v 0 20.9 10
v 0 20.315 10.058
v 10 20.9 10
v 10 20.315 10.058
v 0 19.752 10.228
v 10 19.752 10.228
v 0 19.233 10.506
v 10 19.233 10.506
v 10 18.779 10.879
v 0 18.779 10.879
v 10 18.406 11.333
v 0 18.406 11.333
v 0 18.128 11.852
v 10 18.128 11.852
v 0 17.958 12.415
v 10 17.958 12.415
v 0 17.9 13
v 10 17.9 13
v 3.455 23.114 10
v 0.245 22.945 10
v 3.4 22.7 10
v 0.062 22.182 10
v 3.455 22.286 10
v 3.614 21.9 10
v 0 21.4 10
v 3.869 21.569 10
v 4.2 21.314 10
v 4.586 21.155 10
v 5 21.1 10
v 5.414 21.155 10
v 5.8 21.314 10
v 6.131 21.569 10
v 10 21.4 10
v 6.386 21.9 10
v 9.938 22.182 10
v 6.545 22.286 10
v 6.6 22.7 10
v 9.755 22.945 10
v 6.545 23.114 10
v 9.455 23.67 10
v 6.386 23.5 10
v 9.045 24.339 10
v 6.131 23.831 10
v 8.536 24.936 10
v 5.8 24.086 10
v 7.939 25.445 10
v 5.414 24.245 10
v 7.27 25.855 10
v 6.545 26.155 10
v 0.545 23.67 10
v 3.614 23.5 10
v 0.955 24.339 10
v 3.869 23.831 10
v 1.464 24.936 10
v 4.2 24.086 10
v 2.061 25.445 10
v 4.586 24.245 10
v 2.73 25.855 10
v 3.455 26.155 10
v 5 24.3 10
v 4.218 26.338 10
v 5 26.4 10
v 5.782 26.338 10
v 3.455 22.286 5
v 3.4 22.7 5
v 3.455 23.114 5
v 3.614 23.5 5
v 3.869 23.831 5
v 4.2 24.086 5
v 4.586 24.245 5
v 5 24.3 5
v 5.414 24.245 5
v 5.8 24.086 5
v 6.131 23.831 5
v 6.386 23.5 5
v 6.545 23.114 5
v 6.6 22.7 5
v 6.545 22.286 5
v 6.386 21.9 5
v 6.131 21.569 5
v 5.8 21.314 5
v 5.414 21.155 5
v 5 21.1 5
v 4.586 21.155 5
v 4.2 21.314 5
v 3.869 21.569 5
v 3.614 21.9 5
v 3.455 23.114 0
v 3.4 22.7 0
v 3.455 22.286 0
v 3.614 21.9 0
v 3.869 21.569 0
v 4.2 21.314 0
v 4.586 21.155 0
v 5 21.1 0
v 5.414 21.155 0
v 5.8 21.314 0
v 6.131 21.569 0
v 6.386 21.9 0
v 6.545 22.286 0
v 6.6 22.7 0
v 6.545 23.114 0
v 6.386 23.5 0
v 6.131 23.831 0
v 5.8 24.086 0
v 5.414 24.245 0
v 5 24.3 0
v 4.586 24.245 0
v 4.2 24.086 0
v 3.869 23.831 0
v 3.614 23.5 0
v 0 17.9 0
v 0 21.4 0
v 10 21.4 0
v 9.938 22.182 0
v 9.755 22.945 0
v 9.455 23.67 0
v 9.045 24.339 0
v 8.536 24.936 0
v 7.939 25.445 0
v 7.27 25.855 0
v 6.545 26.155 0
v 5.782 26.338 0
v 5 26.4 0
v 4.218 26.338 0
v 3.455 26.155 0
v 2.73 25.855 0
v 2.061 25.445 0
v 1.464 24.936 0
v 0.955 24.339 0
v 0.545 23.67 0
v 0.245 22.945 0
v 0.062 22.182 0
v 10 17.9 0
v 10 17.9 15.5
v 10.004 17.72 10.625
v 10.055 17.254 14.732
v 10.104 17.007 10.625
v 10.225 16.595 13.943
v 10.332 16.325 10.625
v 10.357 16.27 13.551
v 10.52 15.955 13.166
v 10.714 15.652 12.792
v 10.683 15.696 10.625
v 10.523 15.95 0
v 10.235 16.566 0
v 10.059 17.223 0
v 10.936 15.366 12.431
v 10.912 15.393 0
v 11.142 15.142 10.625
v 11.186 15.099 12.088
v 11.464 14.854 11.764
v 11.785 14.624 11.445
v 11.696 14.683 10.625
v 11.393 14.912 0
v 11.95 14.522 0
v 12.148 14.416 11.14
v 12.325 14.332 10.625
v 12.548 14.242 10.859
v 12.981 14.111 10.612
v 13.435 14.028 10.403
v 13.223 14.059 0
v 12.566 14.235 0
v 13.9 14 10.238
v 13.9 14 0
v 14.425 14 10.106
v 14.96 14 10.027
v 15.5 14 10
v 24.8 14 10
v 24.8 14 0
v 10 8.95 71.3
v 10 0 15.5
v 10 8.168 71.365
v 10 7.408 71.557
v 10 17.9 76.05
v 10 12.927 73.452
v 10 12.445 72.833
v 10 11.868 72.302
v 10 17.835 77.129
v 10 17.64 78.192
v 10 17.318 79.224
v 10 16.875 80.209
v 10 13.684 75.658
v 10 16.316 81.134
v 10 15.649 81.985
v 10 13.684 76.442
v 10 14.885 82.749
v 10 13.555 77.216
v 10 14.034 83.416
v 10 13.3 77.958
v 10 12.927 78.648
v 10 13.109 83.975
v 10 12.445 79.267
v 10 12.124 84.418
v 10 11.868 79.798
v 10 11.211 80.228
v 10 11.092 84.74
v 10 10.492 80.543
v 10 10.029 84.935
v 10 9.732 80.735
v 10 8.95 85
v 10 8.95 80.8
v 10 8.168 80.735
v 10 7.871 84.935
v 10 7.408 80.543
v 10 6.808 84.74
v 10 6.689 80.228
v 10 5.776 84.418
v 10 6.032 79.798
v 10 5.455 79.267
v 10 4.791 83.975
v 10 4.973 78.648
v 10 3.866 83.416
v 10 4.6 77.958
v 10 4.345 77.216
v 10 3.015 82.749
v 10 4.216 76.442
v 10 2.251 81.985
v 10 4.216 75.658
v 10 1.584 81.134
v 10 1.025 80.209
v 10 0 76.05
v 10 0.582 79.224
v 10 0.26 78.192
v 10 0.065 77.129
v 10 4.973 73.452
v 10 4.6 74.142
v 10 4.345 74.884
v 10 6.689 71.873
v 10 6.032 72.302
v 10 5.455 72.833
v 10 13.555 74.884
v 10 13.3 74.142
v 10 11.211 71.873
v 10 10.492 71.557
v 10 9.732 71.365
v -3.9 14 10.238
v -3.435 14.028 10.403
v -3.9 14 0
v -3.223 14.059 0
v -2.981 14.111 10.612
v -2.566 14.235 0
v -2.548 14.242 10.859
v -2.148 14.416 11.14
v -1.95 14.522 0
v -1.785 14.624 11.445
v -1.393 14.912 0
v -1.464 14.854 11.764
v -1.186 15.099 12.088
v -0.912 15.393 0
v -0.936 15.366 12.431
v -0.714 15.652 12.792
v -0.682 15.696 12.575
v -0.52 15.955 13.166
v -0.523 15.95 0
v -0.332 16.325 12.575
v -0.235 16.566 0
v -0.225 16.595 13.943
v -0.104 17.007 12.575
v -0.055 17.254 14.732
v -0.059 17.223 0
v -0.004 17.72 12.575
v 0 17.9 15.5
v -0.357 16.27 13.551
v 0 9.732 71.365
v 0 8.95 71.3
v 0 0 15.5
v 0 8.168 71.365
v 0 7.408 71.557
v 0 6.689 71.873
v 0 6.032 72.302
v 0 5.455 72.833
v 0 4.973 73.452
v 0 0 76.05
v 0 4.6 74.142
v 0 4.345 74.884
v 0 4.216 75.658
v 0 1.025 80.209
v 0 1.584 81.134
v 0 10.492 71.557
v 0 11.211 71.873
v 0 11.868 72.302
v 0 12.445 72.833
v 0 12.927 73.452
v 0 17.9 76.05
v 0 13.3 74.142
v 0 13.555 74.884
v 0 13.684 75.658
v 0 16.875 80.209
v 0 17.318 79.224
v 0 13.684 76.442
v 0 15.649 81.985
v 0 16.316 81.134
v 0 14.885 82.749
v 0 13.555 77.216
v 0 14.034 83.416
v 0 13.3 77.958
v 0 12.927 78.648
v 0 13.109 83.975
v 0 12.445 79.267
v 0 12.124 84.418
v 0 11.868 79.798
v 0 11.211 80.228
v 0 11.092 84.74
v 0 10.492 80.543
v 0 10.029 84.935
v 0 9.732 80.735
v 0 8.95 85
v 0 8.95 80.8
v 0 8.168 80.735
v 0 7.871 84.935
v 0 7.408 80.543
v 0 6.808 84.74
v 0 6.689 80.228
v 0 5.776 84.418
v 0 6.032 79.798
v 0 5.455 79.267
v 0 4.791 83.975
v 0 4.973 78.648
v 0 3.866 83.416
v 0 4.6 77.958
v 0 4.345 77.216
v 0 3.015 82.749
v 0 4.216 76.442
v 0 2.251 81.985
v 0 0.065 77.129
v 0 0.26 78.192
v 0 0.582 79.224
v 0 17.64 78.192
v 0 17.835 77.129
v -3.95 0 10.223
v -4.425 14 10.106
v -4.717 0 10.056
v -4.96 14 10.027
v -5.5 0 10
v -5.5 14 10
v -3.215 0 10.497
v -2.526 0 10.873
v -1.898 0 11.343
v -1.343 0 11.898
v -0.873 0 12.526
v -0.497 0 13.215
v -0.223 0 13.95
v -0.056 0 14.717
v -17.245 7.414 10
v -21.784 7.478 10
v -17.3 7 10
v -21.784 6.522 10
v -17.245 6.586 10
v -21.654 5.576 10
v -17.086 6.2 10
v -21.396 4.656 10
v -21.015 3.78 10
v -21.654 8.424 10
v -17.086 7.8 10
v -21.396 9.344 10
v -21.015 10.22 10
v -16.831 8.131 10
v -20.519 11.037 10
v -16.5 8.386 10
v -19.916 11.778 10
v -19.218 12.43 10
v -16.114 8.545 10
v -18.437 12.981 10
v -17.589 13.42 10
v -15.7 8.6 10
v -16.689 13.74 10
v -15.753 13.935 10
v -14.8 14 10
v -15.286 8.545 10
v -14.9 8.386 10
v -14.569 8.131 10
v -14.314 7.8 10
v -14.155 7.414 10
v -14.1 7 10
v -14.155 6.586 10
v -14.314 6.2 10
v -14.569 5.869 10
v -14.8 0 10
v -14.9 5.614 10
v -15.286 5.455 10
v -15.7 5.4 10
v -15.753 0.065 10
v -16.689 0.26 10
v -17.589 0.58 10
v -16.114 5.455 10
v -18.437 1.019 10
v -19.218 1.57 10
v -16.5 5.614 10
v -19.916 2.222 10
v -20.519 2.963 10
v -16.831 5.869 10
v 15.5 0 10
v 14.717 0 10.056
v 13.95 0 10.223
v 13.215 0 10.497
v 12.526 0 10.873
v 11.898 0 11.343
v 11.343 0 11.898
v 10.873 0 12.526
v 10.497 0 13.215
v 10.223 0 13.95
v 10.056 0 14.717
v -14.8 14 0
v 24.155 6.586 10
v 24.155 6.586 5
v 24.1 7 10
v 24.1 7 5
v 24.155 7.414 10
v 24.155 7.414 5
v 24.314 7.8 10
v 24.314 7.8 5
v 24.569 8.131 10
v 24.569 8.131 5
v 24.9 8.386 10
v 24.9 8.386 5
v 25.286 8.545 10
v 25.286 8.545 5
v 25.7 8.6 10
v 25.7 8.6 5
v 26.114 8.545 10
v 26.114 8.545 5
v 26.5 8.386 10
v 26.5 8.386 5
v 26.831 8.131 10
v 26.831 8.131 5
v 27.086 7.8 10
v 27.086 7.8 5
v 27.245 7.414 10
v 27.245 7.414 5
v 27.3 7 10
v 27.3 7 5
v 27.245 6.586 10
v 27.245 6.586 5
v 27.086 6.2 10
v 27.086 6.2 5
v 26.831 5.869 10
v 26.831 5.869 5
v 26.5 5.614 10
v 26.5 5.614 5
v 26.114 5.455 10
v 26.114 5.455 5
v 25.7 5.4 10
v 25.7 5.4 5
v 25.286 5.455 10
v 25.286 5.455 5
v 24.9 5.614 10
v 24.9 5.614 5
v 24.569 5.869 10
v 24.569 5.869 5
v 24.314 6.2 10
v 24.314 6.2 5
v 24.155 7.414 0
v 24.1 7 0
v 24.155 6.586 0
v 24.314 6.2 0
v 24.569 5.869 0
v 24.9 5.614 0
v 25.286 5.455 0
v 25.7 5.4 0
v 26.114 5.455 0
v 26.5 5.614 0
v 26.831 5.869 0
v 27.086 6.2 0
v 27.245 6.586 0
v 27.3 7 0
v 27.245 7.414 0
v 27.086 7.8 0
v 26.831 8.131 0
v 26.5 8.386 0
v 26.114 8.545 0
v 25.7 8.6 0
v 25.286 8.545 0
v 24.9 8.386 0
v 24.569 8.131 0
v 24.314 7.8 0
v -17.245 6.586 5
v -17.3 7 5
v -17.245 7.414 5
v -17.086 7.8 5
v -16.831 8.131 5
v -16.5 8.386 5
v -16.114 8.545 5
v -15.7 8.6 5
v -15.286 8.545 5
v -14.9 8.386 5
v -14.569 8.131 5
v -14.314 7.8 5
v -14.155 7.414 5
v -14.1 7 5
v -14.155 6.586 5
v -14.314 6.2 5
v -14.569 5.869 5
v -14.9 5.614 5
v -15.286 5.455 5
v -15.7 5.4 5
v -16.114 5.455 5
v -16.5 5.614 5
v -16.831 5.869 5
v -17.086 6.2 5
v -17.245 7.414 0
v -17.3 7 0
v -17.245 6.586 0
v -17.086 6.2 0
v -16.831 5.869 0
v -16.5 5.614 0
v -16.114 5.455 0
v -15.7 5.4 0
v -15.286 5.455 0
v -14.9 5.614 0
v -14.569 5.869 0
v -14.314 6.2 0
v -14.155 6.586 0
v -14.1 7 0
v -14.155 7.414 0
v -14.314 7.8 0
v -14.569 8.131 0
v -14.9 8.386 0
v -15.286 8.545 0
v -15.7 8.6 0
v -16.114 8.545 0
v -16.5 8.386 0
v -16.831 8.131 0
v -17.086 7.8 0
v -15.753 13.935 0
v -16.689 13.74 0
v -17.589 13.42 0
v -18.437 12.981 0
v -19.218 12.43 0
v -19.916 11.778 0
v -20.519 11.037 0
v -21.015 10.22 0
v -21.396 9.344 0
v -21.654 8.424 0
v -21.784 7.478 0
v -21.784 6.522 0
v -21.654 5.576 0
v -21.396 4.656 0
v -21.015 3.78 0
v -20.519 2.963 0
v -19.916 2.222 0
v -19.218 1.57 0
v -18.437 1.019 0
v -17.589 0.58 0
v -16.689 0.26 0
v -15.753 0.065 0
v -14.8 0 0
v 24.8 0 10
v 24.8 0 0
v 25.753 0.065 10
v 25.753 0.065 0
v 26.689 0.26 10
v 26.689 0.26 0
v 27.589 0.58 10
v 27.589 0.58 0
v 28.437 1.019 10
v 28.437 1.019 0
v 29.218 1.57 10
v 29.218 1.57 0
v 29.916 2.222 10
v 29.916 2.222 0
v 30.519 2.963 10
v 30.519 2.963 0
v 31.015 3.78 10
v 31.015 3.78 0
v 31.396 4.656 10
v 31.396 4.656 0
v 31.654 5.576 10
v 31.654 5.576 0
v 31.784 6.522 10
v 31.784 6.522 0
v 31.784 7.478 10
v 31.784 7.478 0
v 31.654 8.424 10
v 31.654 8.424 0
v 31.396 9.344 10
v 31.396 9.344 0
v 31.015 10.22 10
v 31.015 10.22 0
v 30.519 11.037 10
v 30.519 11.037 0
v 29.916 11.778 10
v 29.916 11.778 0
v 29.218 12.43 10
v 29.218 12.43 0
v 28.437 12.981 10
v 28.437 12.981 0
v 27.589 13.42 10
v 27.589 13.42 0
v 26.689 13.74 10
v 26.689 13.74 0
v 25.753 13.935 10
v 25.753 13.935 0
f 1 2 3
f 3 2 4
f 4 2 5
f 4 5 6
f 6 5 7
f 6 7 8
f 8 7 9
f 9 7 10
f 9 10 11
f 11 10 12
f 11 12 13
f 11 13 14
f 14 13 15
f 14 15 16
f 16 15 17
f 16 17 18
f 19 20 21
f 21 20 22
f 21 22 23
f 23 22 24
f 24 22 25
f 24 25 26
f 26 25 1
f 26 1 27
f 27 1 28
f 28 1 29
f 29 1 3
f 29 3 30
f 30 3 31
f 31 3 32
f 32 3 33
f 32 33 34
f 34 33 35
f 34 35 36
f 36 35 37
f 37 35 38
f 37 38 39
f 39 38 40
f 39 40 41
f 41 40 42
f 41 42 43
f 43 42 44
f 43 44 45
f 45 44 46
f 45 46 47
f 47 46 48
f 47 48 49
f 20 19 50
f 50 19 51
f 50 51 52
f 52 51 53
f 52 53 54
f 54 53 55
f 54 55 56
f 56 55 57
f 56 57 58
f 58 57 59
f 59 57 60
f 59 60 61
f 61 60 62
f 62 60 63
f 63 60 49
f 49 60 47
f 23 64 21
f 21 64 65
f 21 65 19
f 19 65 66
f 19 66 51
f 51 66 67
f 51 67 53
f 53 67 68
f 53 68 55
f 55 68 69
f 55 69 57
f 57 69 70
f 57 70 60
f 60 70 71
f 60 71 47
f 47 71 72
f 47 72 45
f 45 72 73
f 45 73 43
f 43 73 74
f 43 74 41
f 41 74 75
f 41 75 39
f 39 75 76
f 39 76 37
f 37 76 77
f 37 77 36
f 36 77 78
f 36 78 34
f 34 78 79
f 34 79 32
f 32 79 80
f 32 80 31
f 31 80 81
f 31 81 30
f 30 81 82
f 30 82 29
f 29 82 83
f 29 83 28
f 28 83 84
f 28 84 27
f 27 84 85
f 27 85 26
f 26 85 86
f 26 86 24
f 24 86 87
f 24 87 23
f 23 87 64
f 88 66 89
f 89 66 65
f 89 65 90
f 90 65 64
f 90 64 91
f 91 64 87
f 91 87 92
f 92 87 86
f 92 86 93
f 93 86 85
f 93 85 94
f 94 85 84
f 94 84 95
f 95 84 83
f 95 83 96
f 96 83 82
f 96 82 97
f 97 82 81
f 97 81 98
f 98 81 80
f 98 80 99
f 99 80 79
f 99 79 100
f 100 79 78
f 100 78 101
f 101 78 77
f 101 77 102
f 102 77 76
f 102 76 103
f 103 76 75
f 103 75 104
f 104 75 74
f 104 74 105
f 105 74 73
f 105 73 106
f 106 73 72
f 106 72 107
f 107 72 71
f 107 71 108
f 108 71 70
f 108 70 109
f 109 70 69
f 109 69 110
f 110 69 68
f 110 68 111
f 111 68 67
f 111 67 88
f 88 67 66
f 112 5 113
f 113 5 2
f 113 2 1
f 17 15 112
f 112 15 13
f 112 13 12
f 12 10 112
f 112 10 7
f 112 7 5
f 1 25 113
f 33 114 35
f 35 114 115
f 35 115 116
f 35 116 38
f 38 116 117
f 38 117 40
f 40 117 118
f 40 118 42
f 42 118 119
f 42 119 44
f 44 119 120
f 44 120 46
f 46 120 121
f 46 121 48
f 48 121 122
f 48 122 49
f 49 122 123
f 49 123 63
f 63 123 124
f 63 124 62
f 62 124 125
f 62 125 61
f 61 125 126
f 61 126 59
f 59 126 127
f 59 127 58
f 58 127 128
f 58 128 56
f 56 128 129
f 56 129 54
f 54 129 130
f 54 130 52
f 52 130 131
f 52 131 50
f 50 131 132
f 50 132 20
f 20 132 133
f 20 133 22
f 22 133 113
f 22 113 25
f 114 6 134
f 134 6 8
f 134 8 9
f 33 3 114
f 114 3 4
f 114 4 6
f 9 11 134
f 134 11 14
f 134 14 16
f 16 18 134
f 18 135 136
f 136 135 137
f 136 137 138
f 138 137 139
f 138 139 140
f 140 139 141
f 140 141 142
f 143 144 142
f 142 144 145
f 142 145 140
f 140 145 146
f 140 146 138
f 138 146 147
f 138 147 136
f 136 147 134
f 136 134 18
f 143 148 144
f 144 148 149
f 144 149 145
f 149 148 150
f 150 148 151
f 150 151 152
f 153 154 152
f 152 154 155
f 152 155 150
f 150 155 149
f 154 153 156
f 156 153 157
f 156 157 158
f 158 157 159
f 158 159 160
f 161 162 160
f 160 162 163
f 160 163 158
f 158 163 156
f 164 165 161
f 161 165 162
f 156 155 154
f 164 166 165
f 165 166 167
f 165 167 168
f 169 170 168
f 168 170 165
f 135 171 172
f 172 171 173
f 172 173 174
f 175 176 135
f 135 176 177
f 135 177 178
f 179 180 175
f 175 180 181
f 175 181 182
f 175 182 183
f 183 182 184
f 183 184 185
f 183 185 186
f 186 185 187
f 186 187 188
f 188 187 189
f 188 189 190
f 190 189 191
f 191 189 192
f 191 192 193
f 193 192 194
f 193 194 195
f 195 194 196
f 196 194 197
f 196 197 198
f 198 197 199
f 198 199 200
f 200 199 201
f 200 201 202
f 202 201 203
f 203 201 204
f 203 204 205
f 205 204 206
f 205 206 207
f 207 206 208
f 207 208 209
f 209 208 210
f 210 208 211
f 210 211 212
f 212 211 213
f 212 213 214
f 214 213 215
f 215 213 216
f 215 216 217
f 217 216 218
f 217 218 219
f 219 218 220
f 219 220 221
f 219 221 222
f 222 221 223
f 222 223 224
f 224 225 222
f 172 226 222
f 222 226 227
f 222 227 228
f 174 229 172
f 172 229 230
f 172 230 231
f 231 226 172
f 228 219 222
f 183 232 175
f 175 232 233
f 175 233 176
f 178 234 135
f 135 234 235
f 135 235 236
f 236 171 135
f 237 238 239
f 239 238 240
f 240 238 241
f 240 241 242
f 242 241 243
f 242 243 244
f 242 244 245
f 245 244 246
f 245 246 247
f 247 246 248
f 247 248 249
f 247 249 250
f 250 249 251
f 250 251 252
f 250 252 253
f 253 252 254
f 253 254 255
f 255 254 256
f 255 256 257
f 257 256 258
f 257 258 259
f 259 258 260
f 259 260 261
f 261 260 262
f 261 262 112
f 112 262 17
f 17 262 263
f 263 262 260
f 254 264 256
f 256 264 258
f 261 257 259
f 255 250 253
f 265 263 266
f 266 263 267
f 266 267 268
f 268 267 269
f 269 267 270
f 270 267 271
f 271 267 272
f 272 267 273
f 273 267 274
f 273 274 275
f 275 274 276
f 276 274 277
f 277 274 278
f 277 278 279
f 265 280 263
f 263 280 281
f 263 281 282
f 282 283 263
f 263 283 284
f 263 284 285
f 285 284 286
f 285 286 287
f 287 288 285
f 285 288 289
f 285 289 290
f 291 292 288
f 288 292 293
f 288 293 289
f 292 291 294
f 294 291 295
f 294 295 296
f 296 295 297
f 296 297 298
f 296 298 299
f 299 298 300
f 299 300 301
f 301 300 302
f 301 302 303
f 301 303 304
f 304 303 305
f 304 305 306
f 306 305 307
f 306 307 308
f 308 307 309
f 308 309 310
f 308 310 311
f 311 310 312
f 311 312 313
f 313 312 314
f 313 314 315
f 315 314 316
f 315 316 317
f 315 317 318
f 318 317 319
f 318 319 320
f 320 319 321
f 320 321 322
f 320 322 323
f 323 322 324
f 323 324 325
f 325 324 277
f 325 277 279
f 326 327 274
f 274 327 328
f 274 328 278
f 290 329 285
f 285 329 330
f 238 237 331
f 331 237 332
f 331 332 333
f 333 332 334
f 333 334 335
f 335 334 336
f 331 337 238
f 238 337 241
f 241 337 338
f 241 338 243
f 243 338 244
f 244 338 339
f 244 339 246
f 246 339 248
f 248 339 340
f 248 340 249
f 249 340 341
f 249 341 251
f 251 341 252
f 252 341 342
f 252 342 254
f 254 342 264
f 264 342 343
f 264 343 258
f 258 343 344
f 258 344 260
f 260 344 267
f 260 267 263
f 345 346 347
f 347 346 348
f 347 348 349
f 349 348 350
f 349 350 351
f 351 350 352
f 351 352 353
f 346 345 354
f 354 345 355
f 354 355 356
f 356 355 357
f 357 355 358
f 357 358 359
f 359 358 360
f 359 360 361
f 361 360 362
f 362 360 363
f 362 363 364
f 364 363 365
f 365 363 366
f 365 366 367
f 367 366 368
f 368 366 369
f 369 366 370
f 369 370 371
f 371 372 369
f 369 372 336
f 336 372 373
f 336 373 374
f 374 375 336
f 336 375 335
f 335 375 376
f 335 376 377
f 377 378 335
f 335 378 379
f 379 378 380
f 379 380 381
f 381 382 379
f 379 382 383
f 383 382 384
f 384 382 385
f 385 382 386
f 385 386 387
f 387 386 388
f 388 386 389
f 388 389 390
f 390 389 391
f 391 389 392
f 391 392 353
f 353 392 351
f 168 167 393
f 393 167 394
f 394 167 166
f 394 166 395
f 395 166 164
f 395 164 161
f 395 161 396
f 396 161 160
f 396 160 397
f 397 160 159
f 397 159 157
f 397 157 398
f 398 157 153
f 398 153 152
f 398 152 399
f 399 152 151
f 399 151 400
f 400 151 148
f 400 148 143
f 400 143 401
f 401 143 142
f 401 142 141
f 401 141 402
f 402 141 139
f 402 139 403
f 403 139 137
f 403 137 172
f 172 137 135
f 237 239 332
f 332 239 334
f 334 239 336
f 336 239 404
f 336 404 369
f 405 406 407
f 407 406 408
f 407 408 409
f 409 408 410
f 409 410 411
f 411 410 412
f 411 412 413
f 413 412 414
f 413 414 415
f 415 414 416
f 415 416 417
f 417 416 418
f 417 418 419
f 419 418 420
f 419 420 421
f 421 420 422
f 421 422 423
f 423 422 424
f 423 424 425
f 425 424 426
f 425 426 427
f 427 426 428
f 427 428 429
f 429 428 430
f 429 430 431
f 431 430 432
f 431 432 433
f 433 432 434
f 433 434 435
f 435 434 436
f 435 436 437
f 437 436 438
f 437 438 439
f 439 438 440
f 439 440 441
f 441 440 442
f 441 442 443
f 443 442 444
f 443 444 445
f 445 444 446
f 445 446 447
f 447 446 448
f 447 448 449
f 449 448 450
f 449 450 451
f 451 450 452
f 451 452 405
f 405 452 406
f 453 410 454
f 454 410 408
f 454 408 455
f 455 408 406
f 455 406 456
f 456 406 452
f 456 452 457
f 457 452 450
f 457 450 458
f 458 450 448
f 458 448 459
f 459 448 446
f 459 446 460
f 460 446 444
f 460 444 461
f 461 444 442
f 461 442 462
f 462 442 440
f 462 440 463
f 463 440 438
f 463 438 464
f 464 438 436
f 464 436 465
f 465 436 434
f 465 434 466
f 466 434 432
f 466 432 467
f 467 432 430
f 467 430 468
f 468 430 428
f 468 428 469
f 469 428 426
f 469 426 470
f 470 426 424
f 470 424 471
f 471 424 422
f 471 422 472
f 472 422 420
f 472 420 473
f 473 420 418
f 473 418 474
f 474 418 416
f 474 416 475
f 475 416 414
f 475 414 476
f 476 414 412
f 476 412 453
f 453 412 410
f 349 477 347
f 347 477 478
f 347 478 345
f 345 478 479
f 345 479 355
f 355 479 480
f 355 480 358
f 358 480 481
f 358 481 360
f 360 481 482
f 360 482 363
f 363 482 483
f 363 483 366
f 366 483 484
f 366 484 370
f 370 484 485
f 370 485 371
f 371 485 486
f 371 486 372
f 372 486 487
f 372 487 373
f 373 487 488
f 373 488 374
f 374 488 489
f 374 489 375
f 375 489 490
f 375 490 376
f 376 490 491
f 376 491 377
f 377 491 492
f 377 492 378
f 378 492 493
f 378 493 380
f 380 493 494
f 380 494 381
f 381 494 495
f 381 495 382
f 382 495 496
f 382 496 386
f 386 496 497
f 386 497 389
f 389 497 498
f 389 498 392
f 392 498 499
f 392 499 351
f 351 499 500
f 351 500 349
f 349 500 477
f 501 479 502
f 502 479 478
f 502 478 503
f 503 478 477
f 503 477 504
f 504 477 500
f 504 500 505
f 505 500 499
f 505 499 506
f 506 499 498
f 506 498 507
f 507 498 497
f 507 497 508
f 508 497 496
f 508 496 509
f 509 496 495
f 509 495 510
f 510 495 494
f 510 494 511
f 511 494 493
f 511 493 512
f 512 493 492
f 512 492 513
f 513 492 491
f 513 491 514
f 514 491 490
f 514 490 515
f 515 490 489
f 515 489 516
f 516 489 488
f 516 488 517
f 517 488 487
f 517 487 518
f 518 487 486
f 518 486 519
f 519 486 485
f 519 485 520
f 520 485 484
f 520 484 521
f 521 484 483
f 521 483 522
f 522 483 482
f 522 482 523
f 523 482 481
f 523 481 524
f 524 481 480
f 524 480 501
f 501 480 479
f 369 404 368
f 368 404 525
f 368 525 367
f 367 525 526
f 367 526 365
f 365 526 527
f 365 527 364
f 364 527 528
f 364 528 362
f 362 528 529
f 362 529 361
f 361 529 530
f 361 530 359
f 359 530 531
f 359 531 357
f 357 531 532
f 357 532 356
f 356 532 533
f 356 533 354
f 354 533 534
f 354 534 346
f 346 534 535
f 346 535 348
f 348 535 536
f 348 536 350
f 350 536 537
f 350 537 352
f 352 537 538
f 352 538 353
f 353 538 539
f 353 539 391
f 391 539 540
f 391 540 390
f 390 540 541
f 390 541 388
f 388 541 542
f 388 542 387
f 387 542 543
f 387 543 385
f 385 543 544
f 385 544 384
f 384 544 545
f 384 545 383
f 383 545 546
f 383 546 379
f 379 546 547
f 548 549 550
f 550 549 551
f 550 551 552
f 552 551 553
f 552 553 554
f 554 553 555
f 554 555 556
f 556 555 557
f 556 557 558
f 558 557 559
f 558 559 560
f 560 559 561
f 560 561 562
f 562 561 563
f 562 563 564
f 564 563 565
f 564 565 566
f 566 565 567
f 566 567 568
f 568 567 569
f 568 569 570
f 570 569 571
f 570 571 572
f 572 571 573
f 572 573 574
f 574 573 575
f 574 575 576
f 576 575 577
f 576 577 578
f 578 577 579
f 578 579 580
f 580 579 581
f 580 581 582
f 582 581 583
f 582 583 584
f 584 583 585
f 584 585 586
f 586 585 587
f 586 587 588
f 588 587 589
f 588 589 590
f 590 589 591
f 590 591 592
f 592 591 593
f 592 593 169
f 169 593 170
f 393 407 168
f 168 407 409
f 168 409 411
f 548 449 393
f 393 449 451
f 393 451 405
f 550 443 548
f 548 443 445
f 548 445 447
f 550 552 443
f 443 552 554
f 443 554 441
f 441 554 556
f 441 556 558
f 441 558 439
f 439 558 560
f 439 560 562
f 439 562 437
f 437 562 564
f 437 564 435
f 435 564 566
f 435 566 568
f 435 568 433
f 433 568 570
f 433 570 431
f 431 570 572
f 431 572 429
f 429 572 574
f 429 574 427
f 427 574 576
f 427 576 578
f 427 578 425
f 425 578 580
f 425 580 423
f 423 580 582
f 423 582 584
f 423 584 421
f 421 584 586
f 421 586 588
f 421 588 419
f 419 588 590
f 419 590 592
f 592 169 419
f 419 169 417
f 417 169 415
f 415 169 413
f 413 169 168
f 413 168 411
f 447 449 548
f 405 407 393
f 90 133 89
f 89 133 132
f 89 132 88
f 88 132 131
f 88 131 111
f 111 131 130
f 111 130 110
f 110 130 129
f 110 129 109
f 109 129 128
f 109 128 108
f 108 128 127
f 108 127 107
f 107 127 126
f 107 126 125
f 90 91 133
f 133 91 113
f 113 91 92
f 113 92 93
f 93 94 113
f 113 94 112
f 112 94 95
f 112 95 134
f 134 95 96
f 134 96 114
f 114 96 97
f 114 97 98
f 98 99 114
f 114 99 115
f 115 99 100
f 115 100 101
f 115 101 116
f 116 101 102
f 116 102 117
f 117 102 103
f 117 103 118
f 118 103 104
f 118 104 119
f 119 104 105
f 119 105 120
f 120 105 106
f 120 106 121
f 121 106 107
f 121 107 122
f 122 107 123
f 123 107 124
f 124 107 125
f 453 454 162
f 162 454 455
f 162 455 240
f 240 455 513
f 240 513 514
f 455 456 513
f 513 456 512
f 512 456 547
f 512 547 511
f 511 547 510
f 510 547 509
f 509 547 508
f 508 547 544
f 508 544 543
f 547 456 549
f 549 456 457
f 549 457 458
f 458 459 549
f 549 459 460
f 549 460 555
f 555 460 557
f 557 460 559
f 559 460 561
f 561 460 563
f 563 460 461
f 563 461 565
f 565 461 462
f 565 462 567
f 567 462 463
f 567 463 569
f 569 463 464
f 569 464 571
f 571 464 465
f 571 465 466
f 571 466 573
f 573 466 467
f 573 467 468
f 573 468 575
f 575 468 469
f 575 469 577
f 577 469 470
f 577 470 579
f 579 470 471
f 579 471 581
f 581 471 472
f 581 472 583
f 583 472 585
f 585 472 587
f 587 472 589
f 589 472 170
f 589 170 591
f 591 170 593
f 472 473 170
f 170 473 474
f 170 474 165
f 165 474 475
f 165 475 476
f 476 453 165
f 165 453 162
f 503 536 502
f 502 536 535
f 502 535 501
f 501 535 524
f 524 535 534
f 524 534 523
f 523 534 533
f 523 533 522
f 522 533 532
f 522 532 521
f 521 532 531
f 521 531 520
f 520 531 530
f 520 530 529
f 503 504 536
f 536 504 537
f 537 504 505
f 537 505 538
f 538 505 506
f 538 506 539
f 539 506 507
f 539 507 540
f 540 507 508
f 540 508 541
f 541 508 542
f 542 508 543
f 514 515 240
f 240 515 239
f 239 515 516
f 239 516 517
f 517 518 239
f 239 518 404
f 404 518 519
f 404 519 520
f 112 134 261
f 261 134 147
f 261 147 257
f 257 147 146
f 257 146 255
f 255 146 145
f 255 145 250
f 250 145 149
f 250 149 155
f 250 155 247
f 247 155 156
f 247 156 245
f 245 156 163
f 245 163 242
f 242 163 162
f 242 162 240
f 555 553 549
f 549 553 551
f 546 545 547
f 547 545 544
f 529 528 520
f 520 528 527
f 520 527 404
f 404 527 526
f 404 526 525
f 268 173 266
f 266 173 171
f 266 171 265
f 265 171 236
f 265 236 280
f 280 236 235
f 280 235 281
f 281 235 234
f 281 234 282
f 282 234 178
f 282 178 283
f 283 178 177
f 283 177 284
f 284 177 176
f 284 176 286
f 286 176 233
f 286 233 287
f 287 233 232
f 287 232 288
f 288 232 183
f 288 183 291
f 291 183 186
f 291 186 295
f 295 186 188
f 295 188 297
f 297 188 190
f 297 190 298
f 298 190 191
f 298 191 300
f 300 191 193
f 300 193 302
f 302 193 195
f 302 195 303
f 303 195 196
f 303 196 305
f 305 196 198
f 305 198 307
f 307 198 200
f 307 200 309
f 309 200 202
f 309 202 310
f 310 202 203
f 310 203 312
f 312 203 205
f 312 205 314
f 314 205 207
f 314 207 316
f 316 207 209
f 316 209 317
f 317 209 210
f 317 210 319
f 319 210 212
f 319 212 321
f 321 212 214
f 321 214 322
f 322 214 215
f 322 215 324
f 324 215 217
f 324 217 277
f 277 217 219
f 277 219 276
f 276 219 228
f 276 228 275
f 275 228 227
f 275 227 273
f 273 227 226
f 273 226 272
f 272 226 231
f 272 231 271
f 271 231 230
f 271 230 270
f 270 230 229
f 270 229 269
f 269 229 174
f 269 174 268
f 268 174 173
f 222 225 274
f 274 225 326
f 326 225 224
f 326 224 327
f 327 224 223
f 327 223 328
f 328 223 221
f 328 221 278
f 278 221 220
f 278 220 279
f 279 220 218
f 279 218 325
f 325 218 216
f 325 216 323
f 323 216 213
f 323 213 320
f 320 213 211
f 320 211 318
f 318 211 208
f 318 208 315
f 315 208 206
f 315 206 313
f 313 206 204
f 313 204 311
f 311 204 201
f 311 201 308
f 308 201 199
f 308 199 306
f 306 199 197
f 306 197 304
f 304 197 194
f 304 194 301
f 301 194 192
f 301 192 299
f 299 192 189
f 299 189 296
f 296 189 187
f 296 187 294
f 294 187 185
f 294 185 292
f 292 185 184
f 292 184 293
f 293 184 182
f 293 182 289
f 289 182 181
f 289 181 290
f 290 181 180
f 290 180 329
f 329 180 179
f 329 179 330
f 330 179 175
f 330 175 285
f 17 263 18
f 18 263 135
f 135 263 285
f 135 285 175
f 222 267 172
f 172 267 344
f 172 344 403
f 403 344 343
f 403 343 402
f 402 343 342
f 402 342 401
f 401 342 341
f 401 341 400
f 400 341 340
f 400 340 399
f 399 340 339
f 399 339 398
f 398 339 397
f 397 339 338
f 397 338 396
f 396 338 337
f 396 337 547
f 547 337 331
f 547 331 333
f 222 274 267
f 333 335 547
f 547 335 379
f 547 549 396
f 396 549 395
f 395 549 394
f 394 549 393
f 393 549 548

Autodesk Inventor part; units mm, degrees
ref_plane "YZ Plane" through (0, 0, 0) normal (1, 0, 0) x (0, 1, 0)
ref_plane "XZ Plane" through (0, 0, 0) normal (0, 1, 0) x (-1, 0, 0)
ref_plane "XY Plane" through (0, 0, 0) normal (0, 0, 1) x (1, 0, 0)
sketch "Sketch1" plane through (0, 0, 0) normal (1, 0, 0) x (0, 1, 0)
  line L0 (0, 0) -> (17.9, 0)
  line L1 (17.9, 0) -> (17.9, 85)
  line L2 (17.9, 85) -> (0, 85)
  line L3 (0, 85) -> (0, 0)
  dimension "d0" = 17.9
  dimension "d1" = 85
extrude "Extrusion1" add sketch "Sketch1" along normal blind 10
fillet "Fillet1" radius 8.95 2 edges at (5, 17.9, 85) (5, 0, 85)
sketch "Sketch2" plane through (10, 0, 0) normal (1, 0, 0) x (0, 0, -1)
  arc A0 (-76.05, 17.9) -> (-76.05, 0) centre (-76.05, 8.95) ccw projected
  circle A1 centre (-76.05, 8.95) radius 4.75
  point P0 (0, 0)
  dimension "d5" = 9.5
extrude "Extrusion2" cut sketch "Sketch2" against normal blind 10
sketch "Sketch3" plane through (0, 0, 0) normal (0, 0, -1) x (-1, 0, 0)
  line L0 (14.8, 0) -> (-24.8, 0)
  line L1 (-31.8, 7) -> (-31.8, 7)
  line L2 (-24.8, 14) -> (14.8, 14)
  line L3 (21.8, 7) -> (21.8, 7)
  line L4 (0, 0) -> (0, 17.9) projected
  line L5 (-10, 0) -> (-10, 17.9) projected
  line L6 (0, 17.9) -> (-10, 17.9) projected
  circle A0 centre (-25.7, 7) radius 1.6
  circle A1 centre (15.7, 7) radius 1.6
  arc A2 (-24.8, 14) -> (-31.8, 7) centre (-24.8, 7) ccw
  arc A3 (-31.8, 7) -> (-24.8, 0) centre (-24.8, 7) ccw
  arc A4 (21.8, 7) -> (14.8, 14) centre (14.8, 7) ccw
  arc A5 (14.8, 0) -> (21.8, 7) centre (14.8, 7) ccw
  point P0 (21.8, 0)
  point P1 (-31.8, 14)
  point P2 (-31.8, 0)
  point P3 (21.8, 14)
  point P4 (-10, 14)
  point P5 (0, 14)
  point P6 (21.8, 7)
  point P7 (-31.8, 7)
  dimension "d8" = 14
  dimension "d9" = 21.8
  dimension "d10" = 21.8
  dimension "d11" = 17.9
  dimension "d12" = 3.2
  dimension "d13" = 3.2
  dimension "d14" = 6.1
  dimension "d15" = 6.1
  dimension "d16" = 7
  dimension "d17" = 7
  dimension "d23" = 7
extrude "Extrusion3" add sketch "Sketch3" against normal blind 10 contours L0 L4 L2 A4 A5 | L0 L5 L2 L4 | L0 A3 A2 L2 L5
fillet "Fillet3" radius 5.5 2 edges at (10, 7, 10) (0, 7, 10)
fillet "Fillet4" radius 3.9 4 edges at (0, 14, 12.75) (0, 14, 5) (10, 14, 12.75) (10, 14, 5)
sketch "Sketch4" plane through (24.8, 7, 0) normal (0, 0, -1) x (-1, 0, 0)
  line L0 (14.8, 10.9) -> (14.8, -7) projected
  line L1 (14.8, 10.9) -> (24.8, 10.9)
  line L2 (24.8, 10.9) -> (24.8, 14.4)
  line L3 (19.8, 19.4) -> (19.8, 19.4)
  line L4 (14.8, 14.4) -> (14.8, 10.9)
  circle A0 centre (19.8, 15.7) radius 1.6
  arc A1 (19.8, 19.4) -> (14.8, 14.4) centre (19.8, 14.4) ccw
  arc A2 (24.8, 14.4) -> (19.8, 19.4) centre (19.8, 14.4) ccw
  point P0 (24.8, -7)
  point P1 (24.8, 19.4)
  point P2 (19.8, 19.4)
  dimension "d24" = 8.5
  dimension "d25" = 3.2
  dimension "d26" = 4.8
  dimension "d27" = 5
extrude "Extrusion4" add sketch "Sketch4" against normal blind 10
fillet "Fillet5" radius 3 1 edges at (5, 17.9, 10)
properties part number "Motor Mount V2"
